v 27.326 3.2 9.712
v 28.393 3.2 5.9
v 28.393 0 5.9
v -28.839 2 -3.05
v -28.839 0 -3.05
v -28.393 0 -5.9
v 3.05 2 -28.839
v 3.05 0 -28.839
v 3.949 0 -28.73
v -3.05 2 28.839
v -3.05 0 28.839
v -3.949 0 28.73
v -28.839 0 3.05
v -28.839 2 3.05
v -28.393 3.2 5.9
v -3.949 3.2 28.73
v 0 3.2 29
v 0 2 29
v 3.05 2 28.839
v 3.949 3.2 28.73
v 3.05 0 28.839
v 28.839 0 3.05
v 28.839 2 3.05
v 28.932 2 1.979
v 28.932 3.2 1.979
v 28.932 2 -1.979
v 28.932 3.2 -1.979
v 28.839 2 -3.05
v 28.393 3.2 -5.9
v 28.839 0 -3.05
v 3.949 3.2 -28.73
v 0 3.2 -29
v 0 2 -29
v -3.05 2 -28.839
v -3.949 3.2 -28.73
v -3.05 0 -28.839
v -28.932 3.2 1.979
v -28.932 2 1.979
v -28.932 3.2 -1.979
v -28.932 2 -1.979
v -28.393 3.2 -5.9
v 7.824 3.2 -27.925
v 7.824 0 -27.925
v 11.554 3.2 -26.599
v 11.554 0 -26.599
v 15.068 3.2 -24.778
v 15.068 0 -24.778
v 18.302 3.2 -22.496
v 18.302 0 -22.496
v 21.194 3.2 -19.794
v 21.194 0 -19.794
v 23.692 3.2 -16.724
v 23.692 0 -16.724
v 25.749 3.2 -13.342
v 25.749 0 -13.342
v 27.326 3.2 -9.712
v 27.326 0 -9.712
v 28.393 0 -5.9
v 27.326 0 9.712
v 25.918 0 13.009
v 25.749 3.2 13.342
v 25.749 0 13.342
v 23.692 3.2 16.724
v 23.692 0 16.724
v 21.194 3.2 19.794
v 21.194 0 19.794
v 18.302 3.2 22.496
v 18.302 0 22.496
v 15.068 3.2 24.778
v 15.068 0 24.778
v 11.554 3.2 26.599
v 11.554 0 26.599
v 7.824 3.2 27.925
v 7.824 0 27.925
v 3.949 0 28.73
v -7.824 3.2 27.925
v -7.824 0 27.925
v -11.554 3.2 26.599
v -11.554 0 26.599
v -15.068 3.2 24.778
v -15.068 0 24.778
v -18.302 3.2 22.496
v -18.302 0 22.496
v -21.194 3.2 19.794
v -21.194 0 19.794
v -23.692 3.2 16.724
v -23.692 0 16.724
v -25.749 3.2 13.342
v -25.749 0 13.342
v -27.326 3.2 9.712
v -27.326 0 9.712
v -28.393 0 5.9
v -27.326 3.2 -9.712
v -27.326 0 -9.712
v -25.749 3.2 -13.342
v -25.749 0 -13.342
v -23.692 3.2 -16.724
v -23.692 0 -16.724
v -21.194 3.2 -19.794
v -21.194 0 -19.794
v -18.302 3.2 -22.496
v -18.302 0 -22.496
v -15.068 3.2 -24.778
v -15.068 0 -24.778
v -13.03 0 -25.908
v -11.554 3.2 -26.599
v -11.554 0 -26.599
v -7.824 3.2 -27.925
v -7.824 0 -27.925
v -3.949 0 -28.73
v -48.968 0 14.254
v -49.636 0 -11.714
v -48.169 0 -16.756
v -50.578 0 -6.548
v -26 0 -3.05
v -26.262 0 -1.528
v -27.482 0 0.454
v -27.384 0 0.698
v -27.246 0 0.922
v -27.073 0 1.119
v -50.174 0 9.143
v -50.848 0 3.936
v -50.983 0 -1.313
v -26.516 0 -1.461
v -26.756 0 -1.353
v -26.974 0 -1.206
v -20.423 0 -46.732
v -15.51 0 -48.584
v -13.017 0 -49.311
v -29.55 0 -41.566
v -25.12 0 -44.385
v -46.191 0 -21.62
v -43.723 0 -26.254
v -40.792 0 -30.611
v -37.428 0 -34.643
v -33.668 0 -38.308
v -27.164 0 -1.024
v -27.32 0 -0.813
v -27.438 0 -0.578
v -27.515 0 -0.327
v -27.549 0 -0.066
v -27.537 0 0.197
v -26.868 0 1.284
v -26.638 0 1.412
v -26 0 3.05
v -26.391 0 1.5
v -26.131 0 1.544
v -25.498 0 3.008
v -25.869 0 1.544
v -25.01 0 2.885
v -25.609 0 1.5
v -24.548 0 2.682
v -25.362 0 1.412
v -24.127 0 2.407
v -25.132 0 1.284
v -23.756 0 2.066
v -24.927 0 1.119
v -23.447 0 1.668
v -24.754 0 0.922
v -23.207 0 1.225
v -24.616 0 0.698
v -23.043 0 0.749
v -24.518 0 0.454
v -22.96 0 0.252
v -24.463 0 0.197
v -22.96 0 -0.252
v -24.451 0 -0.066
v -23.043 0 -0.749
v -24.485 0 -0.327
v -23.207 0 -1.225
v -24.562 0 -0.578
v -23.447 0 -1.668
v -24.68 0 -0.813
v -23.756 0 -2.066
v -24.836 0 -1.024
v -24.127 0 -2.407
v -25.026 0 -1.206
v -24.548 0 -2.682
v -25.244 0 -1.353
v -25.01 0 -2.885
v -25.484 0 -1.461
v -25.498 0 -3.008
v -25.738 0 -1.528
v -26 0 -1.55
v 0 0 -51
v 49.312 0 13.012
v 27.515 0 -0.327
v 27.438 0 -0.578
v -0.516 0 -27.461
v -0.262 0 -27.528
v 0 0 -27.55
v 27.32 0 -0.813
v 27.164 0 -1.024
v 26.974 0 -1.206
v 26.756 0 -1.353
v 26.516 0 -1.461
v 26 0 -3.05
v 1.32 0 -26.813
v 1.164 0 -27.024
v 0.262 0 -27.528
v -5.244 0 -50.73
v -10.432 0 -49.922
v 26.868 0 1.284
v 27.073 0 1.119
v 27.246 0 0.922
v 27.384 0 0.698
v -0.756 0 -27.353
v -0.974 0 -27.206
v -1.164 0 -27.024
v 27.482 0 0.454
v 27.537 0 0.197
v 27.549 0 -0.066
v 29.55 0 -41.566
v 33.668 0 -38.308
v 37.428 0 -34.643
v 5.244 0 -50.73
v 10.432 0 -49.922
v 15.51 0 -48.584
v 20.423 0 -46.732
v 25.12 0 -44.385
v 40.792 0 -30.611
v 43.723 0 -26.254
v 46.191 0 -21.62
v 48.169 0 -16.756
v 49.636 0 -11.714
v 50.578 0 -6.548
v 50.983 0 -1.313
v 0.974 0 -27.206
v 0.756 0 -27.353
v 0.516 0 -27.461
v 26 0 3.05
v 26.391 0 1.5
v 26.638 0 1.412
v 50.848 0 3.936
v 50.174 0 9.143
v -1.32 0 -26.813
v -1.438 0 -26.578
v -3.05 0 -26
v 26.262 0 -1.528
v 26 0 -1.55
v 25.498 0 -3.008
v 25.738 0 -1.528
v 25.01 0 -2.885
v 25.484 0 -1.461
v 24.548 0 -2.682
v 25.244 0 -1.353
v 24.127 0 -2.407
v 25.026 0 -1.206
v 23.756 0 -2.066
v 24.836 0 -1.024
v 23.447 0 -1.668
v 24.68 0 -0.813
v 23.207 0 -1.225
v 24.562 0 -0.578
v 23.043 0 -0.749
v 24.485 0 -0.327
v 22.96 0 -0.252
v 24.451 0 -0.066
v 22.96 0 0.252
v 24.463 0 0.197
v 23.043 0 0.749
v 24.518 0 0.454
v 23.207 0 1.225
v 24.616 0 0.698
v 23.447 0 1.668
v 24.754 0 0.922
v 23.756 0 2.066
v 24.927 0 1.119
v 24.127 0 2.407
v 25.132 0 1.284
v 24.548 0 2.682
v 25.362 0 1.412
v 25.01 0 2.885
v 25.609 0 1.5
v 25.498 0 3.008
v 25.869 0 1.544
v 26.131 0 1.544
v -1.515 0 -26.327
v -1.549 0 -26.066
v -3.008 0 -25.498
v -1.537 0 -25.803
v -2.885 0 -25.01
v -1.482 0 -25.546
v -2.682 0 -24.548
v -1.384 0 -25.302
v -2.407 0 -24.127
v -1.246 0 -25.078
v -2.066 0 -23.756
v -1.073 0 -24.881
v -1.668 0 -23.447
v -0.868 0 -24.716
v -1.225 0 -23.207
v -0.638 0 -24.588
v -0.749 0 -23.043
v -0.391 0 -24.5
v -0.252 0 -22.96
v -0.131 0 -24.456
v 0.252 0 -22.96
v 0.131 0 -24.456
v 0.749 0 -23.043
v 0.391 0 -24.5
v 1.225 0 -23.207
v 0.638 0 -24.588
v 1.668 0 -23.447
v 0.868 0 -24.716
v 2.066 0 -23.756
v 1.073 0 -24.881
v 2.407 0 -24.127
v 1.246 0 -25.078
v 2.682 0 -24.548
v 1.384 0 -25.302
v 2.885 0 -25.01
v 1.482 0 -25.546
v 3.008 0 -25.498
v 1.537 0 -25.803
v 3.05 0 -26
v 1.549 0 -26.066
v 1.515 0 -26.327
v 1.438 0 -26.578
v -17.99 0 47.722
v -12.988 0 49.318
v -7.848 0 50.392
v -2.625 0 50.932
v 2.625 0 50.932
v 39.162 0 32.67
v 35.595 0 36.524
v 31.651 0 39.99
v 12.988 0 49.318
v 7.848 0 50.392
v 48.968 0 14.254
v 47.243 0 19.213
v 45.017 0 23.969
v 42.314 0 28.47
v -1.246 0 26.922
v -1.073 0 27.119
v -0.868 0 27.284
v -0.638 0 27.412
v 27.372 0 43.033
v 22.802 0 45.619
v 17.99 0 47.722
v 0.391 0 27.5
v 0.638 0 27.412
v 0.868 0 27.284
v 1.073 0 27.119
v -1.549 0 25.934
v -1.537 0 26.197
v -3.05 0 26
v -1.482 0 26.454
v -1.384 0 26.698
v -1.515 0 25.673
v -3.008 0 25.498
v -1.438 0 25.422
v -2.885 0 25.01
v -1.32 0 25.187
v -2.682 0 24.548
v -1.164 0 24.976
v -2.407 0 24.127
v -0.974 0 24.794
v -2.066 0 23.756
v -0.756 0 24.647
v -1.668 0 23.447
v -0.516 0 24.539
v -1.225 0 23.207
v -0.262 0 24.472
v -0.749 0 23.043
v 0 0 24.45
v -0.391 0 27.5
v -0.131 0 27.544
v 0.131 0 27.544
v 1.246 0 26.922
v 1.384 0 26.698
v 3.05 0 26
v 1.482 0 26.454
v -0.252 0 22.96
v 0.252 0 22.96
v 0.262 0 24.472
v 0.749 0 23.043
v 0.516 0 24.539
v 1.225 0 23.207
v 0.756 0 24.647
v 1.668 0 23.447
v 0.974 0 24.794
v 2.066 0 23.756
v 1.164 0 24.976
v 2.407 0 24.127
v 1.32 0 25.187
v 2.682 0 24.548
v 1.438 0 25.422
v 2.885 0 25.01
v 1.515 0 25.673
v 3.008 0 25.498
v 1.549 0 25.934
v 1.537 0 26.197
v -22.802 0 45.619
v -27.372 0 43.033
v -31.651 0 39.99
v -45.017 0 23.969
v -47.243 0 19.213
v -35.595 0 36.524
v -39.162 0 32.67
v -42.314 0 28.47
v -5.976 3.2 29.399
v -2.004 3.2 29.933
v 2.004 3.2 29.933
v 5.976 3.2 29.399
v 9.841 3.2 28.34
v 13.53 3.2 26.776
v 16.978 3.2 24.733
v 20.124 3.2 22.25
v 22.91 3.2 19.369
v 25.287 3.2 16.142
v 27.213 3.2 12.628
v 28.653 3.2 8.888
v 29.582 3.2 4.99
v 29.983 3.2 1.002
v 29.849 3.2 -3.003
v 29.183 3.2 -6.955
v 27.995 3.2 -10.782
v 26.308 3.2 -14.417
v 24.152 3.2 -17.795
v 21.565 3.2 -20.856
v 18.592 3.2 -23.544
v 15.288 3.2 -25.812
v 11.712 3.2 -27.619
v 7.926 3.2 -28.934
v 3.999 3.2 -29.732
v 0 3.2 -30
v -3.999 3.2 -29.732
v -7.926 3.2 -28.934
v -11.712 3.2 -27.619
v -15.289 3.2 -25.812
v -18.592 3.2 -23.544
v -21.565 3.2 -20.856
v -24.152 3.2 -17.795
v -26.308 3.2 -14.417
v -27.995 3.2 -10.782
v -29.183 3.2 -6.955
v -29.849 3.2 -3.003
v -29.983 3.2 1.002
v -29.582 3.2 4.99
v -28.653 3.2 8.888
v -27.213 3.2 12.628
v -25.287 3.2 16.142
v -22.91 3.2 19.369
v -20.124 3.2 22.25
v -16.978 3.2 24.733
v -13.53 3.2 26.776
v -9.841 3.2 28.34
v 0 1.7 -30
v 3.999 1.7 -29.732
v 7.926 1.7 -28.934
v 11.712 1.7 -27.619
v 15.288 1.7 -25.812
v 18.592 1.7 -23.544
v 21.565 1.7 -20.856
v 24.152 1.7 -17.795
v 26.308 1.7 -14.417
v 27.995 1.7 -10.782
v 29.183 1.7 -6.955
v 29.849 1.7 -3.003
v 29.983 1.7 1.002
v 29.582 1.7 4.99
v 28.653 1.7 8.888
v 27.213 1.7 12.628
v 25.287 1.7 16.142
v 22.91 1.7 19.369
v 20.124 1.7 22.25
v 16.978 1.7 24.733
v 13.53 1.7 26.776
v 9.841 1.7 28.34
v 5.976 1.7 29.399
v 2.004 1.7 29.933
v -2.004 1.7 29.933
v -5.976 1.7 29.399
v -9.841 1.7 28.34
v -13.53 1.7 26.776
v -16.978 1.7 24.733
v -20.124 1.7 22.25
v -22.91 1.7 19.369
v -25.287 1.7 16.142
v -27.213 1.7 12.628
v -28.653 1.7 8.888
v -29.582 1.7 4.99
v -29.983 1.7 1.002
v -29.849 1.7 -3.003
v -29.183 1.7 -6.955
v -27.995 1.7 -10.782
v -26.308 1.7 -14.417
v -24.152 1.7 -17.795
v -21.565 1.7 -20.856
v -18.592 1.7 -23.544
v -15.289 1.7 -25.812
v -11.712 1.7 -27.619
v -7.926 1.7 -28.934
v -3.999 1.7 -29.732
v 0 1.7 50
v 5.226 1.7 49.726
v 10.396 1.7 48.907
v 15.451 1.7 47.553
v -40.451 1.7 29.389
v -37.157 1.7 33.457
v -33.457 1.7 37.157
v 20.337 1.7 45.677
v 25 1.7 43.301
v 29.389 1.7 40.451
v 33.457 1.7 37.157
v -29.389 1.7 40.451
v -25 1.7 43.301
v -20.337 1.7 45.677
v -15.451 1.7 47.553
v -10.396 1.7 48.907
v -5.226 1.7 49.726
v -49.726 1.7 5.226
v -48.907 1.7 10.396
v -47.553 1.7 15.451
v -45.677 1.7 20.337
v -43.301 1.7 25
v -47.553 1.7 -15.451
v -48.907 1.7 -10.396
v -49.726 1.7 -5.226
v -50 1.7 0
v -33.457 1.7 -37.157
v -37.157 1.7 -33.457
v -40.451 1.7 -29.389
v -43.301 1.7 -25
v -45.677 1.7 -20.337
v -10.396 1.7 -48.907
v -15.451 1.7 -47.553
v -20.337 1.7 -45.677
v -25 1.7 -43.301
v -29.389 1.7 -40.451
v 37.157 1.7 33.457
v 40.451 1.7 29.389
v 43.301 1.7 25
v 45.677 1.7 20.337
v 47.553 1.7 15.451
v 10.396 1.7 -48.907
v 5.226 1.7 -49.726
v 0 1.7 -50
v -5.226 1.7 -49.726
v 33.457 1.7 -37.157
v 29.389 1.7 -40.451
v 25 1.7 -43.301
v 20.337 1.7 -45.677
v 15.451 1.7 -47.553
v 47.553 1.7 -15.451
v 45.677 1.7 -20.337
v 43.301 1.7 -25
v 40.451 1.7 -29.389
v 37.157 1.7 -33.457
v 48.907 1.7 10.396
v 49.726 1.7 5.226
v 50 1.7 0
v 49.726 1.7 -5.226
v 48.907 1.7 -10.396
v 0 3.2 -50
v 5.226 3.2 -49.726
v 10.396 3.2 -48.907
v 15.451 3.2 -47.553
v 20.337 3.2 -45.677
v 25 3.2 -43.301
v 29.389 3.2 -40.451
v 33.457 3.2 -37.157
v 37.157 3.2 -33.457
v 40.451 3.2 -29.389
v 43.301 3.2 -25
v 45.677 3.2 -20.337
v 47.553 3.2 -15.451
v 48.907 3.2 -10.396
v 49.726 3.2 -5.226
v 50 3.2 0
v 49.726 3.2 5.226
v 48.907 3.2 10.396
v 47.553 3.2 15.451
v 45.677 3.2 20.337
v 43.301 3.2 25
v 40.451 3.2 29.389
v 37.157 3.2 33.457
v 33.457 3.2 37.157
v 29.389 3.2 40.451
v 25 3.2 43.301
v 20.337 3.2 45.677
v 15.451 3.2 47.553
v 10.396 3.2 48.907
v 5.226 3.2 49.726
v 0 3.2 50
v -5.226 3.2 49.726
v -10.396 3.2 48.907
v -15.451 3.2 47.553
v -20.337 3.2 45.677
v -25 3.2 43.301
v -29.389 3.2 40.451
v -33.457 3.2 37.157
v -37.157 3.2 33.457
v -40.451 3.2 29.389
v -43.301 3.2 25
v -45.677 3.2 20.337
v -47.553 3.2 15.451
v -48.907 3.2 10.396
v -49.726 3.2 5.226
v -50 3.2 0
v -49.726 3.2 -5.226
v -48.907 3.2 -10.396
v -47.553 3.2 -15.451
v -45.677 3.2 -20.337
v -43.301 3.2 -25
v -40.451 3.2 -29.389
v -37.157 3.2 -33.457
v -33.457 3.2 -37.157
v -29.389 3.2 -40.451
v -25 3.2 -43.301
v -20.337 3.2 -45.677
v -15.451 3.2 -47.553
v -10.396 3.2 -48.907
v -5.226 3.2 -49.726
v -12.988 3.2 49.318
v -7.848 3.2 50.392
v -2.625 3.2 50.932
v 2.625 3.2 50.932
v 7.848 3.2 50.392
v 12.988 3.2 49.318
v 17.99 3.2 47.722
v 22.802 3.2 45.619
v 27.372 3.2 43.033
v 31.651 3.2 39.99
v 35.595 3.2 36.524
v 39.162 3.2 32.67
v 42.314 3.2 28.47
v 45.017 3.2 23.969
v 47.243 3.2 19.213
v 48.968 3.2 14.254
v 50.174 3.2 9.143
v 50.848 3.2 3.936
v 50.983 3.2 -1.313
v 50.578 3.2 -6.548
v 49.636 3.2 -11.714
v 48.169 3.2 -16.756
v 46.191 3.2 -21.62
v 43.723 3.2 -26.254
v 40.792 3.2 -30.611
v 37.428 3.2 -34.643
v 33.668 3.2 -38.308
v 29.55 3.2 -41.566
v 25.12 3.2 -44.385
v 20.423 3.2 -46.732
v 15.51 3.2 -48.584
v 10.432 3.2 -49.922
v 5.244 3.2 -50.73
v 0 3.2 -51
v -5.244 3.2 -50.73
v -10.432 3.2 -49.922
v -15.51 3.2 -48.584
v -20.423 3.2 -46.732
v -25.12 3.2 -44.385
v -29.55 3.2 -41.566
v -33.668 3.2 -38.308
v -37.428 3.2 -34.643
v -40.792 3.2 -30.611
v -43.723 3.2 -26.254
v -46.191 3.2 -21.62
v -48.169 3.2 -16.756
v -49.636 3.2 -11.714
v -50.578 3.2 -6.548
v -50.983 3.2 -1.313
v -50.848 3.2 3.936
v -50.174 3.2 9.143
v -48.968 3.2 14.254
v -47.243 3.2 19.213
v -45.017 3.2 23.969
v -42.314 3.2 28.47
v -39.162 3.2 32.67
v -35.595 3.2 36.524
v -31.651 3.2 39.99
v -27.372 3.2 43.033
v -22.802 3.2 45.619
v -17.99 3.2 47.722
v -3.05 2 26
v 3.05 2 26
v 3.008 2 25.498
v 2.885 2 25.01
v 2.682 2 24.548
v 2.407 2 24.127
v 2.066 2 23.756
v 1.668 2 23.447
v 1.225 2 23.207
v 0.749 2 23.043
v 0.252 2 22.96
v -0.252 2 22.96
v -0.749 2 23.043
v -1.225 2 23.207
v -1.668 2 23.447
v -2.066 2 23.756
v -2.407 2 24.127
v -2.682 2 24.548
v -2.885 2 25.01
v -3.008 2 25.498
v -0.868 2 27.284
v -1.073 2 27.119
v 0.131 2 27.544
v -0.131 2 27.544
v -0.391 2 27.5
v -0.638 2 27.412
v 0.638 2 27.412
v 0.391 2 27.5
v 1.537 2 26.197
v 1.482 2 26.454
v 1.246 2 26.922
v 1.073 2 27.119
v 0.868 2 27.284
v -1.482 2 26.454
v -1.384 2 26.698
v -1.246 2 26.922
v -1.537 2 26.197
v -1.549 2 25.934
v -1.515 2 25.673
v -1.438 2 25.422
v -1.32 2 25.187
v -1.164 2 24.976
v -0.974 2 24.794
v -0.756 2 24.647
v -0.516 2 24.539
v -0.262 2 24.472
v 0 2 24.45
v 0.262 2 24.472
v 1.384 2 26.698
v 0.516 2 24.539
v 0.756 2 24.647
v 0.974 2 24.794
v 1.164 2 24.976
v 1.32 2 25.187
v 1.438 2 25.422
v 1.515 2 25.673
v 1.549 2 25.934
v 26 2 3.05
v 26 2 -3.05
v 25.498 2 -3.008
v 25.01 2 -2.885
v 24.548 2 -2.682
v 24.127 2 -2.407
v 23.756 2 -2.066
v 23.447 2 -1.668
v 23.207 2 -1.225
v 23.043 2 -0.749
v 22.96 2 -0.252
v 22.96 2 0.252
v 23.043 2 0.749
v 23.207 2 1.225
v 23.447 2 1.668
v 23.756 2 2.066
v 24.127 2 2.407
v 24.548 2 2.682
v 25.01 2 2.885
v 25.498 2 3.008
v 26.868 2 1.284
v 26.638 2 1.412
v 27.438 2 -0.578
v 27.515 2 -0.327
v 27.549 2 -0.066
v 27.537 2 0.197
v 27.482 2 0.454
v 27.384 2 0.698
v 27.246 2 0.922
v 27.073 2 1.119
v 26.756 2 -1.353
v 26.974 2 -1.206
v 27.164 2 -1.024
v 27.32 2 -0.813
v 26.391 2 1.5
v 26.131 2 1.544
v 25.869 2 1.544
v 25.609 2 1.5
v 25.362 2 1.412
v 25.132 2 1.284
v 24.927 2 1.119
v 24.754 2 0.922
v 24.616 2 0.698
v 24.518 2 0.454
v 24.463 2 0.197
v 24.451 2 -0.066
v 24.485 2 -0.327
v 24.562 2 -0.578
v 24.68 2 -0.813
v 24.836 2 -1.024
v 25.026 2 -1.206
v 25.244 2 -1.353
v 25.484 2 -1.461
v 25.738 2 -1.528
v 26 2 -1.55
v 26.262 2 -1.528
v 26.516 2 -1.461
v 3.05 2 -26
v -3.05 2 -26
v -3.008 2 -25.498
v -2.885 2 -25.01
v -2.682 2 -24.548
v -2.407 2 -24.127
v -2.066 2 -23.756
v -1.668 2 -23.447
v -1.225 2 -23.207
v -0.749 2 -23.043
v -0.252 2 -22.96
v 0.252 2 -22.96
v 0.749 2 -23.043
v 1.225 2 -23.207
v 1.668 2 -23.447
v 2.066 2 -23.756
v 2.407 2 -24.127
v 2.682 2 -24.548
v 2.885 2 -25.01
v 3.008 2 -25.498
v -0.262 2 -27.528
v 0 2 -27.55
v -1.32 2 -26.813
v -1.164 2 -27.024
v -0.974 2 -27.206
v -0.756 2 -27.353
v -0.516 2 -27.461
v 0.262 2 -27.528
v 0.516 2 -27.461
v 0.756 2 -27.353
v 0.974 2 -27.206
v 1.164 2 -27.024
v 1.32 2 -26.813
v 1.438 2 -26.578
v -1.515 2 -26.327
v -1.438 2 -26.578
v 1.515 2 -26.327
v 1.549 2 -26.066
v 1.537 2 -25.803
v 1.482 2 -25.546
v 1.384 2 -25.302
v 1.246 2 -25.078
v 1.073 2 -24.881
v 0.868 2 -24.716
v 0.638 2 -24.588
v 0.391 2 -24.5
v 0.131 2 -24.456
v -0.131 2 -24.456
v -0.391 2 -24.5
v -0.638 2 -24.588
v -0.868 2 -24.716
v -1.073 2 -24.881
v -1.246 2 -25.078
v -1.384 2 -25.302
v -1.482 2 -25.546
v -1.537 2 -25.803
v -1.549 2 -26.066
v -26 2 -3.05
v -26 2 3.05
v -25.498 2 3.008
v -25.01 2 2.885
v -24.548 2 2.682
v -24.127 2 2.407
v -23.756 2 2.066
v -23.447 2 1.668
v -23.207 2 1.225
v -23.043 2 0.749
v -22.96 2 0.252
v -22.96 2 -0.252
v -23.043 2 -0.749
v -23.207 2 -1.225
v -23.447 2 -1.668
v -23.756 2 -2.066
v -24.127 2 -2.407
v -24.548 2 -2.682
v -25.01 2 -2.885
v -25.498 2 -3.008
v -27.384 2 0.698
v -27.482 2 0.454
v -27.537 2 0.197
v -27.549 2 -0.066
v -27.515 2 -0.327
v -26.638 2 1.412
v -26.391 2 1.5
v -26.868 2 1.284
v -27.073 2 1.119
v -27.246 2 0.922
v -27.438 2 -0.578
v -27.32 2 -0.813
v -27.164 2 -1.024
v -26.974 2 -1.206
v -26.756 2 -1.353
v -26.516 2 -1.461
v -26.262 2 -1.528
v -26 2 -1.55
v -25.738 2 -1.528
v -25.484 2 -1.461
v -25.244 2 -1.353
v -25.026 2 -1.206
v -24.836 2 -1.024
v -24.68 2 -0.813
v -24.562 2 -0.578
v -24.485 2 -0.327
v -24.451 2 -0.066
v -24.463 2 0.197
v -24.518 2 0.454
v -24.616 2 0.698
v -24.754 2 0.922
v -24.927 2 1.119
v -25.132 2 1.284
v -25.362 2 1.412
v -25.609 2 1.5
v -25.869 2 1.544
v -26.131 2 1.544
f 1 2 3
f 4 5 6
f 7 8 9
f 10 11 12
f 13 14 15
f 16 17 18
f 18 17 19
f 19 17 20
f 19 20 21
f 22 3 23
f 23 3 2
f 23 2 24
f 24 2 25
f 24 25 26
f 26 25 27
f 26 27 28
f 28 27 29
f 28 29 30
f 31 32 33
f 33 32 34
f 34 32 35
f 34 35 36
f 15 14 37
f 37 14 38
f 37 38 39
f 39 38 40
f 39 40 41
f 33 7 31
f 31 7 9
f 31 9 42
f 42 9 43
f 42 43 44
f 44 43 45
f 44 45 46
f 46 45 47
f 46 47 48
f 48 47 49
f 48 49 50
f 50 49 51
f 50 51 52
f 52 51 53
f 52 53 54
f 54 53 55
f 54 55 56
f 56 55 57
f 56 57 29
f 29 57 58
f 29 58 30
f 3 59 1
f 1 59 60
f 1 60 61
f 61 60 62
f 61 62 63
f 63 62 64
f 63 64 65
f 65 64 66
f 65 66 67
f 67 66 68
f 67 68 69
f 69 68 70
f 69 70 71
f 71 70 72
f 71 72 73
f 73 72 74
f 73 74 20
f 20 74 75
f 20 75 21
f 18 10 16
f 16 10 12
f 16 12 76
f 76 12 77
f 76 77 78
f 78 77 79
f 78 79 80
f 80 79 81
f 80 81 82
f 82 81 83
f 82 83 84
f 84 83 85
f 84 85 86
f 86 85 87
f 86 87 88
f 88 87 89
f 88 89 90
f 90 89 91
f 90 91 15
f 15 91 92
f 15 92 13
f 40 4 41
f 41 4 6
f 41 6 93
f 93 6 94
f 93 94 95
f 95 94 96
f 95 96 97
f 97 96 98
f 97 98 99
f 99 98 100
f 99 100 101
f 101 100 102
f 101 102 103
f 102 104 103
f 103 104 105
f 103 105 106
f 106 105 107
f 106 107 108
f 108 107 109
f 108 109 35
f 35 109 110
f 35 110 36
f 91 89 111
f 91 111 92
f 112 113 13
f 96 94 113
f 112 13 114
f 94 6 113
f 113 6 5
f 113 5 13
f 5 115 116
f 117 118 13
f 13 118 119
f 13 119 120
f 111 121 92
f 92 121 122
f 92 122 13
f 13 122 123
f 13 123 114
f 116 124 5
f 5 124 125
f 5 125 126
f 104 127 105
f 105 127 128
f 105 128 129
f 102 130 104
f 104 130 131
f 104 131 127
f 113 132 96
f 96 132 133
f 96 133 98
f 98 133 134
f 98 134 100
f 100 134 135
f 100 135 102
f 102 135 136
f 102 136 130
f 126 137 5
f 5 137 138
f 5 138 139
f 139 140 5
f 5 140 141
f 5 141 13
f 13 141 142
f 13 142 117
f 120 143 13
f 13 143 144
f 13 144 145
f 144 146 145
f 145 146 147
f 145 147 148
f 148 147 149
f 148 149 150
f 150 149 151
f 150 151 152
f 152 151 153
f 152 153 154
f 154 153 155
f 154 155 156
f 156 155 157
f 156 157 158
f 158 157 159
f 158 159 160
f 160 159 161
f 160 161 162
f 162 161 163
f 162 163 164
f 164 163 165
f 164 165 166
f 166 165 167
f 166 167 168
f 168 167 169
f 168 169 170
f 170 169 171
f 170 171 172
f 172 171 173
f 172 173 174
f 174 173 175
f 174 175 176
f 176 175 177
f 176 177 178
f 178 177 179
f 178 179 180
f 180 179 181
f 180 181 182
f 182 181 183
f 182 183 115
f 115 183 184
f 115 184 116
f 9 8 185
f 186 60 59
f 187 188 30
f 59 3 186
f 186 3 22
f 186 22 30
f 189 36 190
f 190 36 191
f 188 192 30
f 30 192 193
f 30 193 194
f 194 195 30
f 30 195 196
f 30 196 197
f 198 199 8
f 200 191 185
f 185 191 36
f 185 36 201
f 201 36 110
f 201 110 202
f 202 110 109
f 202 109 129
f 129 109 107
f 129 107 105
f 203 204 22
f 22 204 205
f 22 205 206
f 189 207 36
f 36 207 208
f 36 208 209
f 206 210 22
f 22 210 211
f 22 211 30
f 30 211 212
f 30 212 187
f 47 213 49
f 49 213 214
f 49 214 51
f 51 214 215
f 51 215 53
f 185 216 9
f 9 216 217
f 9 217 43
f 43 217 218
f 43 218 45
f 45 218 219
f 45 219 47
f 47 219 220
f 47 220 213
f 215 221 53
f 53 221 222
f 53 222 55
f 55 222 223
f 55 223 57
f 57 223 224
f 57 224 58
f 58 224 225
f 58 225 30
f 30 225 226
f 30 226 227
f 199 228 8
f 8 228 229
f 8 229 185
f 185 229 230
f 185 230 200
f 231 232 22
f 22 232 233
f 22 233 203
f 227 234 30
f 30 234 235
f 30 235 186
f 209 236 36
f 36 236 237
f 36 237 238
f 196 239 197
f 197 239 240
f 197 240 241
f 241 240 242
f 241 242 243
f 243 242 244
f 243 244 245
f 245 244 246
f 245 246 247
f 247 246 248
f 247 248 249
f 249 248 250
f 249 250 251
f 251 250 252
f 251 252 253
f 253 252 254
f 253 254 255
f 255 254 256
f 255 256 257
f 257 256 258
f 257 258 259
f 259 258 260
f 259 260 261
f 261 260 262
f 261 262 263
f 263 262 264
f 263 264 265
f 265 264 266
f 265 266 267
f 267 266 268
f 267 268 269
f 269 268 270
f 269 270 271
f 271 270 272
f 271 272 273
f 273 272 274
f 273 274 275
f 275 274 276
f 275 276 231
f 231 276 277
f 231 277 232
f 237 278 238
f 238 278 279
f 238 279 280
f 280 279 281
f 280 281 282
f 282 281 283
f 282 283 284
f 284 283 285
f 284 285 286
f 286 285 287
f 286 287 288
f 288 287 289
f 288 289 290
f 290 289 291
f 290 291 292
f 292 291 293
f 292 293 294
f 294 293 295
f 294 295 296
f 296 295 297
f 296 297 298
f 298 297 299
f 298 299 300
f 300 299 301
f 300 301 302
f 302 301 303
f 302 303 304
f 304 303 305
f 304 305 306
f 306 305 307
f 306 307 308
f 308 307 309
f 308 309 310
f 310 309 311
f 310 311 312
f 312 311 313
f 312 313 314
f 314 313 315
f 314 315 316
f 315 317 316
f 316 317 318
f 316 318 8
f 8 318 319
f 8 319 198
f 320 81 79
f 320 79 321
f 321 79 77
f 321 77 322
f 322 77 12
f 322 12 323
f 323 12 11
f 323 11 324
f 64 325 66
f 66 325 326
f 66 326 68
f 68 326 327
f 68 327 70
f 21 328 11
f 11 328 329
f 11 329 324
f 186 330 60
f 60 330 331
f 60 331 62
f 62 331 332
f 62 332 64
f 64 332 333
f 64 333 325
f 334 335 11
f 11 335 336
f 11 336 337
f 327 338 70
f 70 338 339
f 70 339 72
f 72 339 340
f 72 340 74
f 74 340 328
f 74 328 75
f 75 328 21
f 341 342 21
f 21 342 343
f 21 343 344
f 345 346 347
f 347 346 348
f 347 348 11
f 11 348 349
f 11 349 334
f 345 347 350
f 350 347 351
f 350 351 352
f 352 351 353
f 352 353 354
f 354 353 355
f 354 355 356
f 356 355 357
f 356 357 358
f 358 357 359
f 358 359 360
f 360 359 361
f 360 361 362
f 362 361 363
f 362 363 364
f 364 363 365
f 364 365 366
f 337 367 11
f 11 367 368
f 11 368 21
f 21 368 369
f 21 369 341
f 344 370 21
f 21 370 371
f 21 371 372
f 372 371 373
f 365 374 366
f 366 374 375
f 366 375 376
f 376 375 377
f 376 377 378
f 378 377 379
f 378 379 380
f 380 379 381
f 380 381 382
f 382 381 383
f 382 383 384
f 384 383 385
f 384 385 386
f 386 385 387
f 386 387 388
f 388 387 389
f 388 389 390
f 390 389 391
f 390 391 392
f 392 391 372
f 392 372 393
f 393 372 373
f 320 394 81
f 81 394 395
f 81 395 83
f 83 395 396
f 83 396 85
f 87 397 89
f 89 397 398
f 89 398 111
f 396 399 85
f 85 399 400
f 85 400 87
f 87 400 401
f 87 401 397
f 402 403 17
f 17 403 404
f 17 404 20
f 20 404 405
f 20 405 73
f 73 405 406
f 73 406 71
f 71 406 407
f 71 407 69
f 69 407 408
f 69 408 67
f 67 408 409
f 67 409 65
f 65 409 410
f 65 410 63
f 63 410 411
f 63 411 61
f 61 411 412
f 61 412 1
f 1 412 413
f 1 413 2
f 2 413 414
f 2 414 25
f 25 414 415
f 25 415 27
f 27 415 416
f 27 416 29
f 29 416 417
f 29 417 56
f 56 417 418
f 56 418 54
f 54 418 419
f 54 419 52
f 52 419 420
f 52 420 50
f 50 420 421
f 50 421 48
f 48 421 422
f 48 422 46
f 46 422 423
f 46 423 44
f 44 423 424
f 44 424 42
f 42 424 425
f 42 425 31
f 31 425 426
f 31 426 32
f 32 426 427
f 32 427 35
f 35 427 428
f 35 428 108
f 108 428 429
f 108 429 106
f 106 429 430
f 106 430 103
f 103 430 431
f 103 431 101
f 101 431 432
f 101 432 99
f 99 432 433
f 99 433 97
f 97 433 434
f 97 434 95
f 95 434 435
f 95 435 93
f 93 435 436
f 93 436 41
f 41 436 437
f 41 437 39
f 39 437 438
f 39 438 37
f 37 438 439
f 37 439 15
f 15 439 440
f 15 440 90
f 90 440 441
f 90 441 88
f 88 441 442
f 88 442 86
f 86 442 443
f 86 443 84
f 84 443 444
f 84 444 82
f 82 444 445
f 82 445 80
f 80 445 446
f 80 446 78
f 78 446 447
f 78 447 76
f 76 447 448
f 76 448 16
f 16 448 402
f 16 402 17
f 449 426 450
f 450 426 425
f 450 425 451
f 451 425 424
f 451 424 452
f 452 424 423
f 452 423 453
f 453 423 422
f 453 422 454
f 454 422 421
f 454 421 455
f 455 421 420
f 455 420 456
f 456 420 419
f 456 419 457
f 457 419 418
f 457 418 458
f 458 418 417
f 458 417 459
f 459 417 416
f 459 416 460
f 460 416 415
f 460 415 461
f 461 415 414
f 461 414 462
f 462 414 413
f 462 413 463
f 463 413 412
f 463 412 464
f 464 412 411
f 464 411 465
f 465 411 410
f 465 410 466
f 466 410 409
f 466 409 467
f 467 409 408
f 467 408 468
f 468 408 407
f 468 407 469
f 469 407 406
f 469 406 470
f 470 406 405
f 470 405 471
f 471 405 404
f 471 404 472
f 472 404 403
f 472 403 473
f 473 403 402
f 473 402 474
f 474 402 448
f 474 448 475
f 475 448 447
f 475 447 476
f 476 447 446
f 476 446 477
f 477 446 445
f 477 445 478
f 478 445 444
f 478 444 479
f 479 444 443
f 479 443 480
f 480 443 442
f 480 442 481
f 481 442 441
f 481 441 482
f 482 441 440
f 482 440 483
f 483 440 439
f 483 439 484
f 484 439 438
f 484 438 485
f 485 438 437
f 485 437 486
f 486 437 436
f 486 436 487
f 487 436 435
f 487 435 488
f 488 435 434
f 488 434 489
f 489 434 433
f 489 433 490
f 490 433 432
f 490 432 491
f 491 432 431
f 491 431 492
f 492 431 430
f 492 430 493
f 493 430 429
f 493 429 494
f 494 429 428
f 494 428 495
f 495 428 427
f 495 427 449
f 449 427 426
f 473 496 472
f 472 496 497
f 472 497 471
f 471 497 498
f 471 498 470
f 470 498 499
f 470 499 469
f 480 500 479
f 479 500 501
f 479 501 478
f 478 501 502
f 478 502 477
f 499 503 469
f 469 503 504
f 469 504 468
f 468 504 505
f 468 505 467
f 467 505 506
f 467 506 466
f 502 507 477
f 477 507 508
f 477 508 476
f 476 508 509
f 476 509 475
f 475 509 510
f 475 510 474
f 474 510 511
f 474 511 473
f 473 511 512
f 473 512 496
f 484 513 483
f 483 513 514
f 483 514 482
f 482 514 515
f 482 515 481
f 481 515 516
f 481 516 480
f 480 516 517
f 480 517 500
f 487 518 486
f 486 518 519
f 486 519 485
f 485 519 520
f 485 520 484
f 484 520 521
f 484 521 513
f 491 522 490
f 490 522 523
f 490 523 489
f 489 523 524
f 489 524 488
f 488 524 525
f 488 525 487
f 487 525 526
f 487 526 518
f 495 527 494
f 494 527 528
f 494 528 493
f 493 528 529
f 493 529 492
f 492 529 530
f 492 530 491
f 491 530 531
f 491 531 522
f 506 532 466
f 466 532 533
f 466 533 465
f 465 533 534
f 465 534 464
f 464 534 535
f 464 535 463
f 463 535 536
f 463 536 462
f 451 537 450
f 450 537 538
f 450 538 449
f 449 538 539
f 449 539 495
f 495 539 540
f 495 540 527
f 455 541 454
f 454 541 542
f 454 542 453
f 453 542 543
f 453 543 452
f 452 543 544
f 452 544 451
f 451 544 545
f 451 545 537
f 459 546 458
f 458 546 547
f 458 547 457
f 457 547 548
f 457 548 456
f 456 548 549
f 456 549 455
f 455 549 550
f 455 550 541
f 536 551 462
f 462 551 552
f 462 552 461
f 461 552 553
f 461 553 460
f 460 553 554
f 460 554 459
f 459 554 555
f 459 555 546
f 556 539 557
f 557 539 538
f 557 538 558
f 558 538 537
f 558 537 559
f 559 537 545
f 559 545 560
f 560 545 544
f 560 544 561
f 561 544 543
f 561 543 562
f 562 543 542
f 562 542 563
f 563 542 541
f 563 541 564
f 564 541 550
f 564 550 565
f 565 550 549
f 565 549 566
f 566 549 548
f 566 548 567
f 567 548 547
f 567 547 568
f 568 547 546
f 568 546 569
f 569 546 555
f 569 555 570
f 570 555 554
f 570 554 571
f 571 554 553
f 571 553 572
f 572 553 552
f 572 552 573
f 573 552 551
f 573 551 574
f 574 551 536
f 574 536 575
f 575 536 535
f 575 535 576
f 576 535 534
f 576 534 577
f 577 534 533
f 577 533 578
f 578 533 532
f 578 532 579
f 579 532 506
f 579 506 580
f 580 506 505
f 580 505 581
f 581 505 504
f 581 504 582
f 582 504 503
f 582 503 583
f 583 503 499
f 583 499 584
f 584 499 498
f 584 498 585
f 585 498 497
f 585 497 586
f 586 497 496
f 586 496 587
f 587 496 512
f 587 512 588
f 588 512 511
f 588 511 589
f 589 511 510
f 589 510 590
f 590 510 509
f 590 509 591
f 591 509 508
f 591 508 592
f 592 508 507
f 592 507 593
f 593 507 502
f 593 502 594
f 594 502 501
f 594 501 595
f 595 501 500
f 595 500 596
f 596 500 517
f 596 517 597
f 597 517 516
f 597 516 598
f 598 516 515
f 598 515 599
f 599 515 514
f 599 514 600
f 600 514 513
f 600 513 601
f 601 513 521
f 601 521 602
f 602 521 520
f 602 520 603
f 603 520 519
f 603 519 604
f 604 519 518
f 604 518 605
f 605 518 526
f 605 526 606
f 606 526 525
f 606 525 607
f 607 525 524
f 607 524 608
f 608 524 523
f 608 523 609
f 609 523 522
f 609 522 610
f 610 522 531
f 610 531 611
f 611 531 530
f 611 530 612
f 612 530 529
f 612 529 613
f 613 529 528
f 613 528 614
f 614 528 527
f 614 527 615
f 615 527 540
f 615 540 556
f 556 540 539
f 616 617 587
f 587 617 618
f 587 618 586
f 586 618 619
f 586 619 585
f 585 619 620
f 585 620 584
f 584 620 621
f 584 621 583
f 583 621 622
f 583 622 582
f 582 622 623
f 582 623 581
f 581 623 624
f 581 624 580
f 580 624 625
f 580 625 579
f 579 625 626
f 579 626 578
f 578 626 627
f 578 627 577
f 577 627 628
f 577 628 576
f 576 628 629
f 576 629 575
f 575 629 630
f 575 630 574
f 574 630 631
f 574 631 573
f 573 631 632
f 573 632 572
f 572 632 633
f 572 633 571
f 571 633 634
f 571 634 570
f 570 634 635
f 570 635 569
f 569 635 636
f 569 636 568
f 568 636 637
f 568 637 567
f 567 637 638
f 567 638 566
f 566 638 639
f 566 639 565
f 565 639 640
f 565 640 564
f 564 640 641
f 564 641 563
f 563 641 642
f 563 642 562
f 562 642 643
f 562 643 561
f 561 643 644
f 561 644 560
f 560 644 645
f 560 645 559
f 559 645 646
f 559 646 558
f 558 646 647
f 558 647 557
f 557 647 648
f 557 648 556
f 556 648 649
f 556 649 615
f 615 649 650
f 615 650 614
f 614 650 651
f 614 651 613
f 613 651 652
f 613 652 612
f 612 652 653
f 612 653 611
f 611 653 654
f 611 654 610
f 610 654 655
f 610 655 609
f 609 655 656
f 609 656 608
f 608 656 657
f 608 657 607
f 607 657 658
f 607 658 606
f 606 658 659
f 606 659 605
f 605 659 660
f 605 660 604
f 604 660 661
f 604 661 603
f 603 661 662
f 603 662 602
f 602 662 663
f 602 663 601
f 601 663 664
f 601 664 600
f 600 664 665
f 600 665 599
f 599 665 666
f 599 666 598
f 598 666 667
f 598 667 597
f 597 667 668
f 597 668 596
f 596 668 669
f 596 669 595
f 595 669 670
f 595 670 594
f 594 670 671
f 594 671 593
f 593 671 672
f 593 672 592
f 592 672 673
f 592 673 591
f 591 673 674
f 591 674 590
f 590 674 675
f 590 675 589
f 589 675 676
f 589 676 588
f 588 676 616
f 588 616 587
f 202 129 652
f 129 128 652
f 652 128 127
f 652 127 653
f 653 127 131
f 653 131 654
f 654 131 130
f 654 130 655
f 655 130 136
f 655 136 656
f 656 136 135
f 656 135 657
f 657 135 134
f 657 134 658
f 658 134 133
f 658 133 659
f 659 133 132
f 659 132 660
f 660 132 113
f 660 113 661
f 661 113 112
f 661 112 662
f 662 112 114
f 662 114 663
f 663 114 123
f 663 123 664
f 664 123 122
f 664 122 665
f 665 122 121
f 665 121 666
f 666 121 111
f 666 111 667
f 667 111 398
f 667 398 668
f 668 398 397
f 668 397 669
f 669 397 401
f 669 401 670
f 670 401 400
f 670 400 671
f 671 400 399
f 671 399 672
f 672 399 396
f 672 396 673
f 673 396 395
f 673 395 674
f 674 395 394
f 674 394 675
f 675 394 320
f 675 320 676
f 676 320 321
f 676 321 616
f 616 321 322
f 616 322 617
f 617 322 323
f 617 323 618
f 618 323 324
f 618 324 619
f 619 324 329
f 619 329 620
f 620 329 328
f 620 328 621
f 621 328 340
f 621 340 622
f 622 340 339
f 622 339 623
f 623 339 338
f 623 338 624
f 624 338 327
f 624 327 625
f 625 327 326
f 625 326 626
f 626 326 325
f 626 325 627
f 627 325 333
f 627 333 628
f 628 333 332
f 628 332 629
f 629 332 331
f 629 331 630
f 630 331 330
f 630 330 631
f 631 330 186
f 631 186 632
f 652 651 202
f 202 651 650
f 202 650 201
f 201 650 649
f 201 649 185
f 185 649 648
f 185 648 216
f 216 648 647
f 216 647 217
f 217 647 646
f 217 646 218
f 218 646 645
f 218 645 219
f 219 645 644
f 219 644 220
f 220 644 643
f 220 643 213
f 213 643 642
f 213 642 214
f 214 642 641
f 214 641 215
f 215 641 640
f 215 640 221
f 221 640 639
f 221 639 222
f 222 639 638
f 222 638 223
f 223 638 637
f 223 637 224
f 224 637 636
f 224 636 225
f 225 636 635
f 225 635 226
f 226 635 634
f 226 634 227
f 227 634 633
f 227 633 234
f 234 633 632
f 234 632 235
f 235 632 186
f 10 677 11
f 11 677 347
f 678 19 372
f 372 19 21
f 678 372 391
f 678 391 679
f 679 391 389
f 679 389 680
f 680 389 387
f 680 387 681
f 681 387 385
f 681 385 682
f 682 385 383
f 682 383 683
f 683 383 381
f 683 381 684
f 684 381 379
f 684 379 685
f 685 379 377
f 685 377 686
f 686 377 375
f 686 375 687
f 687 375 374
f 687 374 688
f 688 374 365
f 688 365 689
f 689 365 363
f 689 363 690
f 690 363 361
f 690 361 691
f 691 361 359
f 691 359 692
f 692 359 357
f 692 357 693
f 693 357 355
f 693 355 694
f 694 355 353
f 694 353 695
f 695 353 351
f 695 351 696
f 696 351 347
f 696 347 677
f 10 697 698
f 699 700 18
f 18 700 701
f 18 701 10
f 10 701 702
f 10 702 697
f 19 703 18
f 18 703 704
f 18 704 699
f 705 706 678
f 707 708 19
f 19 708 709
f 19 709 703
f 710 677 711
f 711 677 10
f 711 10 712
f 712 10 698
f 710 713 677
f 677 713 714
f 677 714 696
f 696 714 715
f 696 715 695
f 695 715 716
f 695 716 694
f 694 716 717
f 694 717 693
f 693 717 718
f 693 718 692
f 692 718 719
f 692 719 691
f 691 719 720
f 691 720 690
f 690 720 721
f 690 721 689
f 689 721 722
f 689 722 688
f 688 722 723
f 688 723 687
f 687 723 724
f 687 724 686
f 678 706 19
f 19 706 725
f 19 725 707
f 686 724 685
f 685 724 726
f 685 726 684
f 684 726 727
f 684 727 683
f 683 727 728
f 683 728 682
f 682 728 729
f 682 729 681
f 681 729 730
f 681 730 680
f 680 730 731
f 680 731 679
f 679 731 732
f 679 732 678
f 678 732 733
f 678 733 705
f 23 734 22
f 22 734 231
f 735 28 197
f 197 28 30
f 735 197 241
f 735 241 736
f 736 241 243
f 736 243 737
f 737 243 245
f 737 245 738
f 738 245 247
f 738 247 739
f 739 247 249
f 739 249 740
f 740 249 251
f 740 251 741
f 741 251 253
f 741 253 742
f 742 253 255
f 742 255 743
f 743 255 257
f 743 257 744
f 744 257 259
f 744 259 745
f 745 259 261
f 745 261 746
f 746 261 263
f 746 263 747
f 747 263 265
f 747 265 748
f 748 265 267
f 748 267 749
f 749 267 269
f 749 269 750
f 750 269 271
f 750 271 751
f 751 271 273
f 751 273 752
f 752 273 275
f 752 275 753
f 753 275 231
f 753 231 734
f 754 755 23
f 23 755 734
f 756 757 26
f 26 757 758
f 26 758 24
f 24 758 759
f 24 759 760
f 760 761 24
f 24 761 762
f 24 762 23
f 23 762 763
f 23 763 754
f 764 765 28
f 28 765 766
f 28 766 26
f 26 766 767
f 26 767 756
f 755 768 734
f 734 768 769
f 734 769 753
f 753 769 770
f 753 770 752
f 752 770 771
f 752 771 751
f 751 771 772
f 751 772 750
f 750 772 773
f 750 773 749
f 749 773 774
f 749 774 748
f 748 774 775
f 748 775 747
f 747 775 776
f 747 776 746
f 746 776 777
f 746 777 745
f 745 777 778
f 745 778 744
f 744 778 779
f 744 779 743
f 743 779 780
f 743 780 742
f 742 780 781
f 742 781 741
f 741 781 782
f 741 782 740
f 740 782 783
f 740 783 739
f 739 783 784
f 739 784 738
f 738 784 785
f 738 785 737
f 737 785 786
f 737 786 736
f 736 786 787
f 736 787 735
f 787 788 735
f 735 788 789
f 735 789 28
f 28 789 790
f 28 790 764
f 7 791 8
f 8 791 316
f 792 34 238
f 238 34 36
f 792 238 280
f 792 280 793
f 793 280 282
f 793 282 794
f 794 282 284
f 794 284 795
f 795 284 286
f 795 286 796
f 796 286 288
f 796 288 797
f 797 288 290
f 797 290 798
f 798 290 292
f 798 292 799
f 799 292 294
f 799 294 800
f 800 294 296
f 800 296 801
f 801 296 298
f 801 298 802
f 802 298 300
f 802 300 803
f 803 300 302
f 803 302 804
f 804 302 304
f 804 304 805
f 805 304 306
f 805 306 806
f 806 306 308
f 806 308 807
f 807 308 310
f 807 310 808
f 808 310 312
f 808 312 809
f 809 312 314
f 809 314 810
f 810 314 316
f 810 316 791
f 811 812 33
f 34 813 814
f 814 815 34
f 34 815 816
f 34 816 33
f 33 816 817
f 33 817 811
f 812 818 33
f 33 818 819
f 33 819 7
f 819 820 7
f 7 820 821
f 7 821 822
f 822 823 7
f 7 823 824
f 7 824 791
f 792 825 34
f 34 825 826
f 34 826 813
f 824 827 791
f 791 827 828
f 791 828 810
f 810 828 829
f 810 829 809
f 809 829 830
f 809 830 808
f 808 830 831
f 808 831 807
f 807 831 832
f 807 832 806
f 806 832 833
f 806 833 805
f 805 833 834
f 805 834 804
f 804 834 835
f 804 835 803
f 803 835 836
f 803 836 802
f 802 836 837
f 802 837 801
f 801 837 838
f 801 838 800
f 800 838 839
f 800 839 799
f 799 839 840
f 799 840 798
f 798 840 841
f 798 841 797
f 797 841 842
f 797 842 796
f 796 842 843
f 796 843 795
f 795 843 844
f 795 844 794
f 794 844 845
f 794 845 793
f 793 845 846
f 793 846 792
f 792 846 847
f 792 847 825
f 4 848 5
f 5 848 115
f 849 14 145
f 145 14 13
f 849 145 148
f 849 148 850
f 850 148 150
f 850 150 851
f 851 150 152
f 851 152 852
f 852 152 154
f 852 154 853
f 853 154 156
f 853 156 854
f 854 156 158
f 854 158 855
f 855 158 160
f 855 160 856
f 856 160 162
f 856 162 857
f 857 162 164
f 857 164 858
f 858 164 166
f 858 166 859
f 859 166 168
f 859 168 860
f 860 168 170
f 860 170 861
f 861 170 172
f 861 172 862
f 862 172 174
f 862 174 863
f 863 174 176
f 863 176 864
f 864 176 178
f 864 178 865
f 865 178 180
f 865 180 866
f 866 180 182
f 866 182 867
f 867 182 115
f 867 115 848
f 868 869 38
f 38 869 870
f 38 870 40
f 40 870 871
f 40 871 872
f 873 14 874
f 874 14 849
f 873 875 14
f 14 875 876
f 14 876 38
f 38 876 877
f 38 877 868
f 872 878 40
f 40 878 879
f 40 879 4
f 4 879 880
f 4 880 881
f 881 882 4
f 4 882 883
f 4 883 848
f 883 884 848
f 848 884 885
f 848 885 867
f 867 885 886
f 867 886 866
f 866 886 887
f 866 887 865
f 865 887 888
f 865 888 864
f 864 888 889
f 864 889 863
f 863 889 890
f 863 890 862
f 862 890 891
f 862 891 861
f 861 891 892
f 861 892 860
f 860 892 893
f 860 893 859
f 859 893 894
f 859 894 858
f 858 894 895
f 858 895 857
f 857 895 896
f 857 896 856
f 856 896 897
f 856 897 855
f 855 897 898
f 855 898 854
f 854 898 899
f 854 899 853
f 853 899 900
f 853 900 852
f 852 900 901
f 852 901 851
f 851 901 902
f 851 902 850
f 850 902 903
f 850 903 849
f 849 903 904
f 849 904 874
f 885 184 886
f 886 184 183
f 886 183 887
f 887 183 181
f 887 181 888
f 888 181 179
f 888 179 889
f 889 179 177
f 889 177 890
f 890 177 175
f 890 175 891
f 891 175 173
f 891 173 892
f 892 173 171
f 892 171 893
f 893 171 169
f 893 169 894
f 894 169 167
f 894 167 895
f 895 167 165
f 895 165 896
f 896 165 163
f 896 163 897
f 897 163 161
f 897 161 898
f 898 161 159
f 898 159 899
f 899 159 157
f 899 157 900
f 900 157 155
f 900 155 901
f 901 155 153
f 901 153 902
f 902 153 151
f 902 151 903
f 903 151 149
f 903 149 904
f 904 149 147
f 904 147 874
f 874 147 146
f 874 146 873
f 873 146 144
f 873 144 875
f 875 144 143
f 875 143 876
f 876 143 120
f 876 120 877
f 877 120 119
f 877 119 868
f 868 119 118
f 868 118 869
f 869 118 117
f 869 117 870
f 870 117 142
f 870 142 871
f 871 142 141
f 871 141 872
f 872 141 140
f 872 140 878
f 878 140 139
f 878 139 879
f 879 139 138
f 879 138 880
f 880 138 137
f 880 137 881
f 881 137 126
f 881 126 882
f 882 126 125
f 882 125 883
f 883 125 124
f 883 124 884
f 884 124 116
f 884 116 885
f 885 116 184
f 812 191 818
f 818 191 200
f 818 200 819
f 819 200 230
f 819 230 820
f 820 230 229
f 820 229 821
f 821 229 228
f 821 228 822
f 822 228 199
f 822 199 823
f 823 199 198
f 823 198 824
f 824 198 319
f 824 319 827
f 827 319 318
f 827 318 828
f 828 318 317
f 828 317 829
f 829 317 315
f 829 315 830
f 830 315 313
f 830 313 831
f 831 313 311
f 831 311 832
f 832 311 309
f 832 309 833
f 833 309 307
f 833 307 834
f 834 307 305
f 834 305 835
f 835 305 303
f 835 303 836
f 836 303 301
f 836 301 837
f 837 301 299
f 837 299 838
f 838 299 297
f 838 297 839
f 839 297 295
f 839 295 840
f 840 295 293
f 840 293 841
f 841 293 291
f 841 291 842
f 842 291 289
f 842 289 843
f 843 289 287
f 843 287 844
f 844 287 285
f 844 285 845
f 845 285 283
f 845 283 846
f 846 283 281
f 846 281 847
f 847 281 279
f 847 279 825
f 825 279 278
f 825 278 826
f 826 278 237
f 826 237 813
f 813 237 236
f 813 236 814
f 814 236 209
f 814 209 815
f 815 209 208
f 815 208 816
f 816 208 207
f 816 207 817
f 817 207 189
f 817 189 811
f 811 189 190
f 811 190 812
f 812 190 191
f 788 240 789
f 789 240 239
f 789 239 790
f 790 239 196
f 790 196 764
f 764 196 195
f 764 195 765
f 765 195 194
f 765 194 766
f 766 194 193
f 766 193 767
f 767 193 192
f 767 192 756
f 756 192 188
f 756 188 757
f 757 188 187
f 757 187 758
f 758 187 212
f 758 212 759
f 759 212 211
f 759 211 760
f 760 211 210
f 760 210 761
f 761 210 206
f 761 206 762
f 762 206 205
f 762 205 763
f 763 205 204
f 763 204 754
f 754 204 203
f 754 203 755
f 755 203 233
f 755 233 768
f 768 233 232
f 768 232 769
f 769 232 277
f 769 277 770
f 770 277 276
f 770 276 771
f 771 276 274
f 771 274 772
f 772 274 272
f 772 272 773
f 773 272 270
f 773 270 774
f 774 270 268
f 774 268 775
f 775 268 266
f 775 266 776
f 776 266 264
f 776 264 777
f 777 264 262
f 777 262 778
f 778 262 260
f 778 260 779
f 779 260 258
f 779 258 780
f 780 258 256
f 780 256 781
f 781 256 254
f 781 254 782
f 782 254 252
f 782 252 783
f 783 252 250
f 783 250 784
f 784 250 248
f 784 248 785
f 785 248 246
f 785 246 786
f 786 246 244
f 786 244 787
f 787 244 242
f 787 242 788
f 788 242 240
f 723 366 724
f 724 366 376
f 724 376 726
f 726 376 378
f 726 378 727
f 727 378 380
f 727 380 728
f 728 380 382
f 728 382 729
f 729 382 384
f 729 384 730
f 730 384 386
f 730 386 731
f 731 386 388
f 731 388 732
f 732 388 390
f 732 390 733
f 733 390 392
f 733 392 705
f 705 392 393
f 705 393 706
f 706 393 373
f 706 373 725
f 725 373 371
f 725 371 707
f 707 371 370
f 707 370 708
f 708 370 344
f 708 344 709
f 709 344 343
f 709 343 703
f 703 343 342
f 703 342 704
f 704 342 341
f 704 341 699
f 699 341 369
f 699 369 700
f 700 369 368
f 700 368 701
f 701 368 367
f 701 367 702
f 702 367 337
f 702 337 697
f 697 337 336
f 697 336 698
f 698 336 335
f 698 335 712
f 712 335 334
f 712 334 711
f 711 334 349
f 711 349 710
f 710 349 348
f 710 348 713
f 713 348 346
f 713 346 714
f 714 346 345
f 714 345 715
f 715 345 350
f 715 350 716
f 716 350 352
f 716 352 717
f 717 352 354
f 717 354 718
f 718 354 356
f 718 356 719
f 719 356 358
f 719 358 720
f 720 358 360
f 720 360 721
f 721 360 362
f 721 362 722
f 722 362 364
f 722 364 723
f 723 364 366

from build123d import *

# Parameters (mm, degrees)
EXTRUDE_START       = -2
EXTRUDE_1_DEPTH     = 2
CUT_EXTRUDE_1_REACH = 74.196
SKETCH_2_4_R        = 1.55


with BuildPart() as part:
    # 草图1 → 旋转1 (revolve)
    with BuildSketch(Plane.XY):
        Polygon((29, 0), (29, 3.2), (30, 3.2), (30, 1.7), (50, 1.7), (50, 3.2), (51, 3.2), (51, 0), align=None)
    revolve(axis=Axis((0, 0, 0), (0, 1, 0)))

    # 草图2 → 凸台-拉伸1 (add)
    with BuildSketch(Plane.XZ.offset(EXTRUDE_START)):
        with BuildLine():
            Line((-3.05, 26), (-3.05, 28.839166077))
            ThreePointArc((-3.05, 28.839166077), (0, 29), (3.05, 28.839166077))
            Line((3.05, 28.839166077), (3.05, 26))
            ThreePointArc((3.05, 26), (0, 22.95), (-3.05, 26))
        make_face()
        with BuildLine():
            Line((26, 3.05), (28.839166077, 3.05))
            ThreePointArc((28.839166077, 3.05), (29, 0), (28.839166077, -3.05))
            Line((28.839166077, -3.05), (26, -3.05))
            ThreePointArc((26, -3.05), (22.95, 0), (26, 3.05))
        make_face()
        with BuildLine():
            Line((3.05, -26), (3.05, -28.839166077))
            ThreePointArc((3.05, -28.839166077), (0, -29), (-3.05, -28.839166077))
            Line((-3.05, -28.839166077), (-3.05, -26))
            ThreePointArc((-3.05, -26), (0, -22.95), (3.05, -26))
        make_face()
        with BuildLine():
            Line((-26, -3.05), (-28.839166077, -3.05))
            ThreePointArc((-28.839166077, -3.05), (-29, 0), (-28.839166077, 3.05))
            Line((-28.839166077, 3.05), (-26, 3.05))
            ThreePointArc((-26, 3.05), (-22.95, 0), (-26, -3.05))
        make_face()
    extrude(amount=EXTRUDE_1_DEPTH)

    # 草图2<4> → 切除-拉伸1 (cut, up to next)
    with BuildSketch(Plane.XZ, mode=Mode.PRIVATE) as cut_extrude_1_sk1:
        with Locations((0, 26)):
            Circle(SKETCH_2_4_R)
    cut_extrude_1_tool1 = extrude(cut_extrude_1_sk1.sketch, amount=-CUT_EXTRUDE_1_REACH, mode=Mode.PRIVATE) & part.part
    # 草图2<4> → 切除-拉伸1 (cut, up to next)
    with BuildSketch(Plane.XZ, mode=Mode.PRIVATE) as cut_extrude_1_sk2:
        with Locations((26, 0)):
            Circle(SKETCH_2_4_R)
    cut_extrude_1_tool2 = extrude(cut_extrude_1_sk2.sketch, amount=-CUT_EXTRUDE_1_REACH, mode=Mode.PRIVATE) & part.part
    # 草图2<4> → 切除-拉伸1 (cut, up to next)
    with BuildSketch(Plane.XZ, mode=Mode.PRIVATE) as cut_extrude_1_sk3:
        with Locations((0, -26)):
            Circle(SKETCH_2_4_R)
    cut_extrude_1_tool3 = extrude(cut_extrude_1_sk3.sketch, amount=-CUT_EXTRUDE_1_REACH, mode=Mode.PRIVATE) & part.part
    # 草图2<4> → 切除-拉伸1 (cut, up to next)
    with BuildSketch(Plane.XZ, mode=Mode.PRIVATE) as cut_extrude_1_sk4:
        with Locations((-26, 0)):
            Circle(SKETCH_2_4_R)
    cut_extrude_1_tool4 = extrude(cut_extrude_1_sk4.sketch, amount=-CUT_EXTRUDE_1_REACH, mode=Mode.PRIVATE) & part.part
    add(cut_extrude_1_tool1.solids().sort_by_distance((0, 0, 26))[0], mode=Mode.SUBTRACT)
    add(cut_extrude_1_tool2.solids().sort_by_distance((26, 0, 0))[0], mode=Mode.SUBTRACT)
    add(cut_extrude_1_tool3.solids().sort_by_distance((0, 0, -26))[0], mode=Mode.SUBTRACT)
    add(cut_extrude_1_tool4.solids().sort_by_distance((-26, 0, 0))[0], mode=Mode.SUBTRACT)


solid = part.part
